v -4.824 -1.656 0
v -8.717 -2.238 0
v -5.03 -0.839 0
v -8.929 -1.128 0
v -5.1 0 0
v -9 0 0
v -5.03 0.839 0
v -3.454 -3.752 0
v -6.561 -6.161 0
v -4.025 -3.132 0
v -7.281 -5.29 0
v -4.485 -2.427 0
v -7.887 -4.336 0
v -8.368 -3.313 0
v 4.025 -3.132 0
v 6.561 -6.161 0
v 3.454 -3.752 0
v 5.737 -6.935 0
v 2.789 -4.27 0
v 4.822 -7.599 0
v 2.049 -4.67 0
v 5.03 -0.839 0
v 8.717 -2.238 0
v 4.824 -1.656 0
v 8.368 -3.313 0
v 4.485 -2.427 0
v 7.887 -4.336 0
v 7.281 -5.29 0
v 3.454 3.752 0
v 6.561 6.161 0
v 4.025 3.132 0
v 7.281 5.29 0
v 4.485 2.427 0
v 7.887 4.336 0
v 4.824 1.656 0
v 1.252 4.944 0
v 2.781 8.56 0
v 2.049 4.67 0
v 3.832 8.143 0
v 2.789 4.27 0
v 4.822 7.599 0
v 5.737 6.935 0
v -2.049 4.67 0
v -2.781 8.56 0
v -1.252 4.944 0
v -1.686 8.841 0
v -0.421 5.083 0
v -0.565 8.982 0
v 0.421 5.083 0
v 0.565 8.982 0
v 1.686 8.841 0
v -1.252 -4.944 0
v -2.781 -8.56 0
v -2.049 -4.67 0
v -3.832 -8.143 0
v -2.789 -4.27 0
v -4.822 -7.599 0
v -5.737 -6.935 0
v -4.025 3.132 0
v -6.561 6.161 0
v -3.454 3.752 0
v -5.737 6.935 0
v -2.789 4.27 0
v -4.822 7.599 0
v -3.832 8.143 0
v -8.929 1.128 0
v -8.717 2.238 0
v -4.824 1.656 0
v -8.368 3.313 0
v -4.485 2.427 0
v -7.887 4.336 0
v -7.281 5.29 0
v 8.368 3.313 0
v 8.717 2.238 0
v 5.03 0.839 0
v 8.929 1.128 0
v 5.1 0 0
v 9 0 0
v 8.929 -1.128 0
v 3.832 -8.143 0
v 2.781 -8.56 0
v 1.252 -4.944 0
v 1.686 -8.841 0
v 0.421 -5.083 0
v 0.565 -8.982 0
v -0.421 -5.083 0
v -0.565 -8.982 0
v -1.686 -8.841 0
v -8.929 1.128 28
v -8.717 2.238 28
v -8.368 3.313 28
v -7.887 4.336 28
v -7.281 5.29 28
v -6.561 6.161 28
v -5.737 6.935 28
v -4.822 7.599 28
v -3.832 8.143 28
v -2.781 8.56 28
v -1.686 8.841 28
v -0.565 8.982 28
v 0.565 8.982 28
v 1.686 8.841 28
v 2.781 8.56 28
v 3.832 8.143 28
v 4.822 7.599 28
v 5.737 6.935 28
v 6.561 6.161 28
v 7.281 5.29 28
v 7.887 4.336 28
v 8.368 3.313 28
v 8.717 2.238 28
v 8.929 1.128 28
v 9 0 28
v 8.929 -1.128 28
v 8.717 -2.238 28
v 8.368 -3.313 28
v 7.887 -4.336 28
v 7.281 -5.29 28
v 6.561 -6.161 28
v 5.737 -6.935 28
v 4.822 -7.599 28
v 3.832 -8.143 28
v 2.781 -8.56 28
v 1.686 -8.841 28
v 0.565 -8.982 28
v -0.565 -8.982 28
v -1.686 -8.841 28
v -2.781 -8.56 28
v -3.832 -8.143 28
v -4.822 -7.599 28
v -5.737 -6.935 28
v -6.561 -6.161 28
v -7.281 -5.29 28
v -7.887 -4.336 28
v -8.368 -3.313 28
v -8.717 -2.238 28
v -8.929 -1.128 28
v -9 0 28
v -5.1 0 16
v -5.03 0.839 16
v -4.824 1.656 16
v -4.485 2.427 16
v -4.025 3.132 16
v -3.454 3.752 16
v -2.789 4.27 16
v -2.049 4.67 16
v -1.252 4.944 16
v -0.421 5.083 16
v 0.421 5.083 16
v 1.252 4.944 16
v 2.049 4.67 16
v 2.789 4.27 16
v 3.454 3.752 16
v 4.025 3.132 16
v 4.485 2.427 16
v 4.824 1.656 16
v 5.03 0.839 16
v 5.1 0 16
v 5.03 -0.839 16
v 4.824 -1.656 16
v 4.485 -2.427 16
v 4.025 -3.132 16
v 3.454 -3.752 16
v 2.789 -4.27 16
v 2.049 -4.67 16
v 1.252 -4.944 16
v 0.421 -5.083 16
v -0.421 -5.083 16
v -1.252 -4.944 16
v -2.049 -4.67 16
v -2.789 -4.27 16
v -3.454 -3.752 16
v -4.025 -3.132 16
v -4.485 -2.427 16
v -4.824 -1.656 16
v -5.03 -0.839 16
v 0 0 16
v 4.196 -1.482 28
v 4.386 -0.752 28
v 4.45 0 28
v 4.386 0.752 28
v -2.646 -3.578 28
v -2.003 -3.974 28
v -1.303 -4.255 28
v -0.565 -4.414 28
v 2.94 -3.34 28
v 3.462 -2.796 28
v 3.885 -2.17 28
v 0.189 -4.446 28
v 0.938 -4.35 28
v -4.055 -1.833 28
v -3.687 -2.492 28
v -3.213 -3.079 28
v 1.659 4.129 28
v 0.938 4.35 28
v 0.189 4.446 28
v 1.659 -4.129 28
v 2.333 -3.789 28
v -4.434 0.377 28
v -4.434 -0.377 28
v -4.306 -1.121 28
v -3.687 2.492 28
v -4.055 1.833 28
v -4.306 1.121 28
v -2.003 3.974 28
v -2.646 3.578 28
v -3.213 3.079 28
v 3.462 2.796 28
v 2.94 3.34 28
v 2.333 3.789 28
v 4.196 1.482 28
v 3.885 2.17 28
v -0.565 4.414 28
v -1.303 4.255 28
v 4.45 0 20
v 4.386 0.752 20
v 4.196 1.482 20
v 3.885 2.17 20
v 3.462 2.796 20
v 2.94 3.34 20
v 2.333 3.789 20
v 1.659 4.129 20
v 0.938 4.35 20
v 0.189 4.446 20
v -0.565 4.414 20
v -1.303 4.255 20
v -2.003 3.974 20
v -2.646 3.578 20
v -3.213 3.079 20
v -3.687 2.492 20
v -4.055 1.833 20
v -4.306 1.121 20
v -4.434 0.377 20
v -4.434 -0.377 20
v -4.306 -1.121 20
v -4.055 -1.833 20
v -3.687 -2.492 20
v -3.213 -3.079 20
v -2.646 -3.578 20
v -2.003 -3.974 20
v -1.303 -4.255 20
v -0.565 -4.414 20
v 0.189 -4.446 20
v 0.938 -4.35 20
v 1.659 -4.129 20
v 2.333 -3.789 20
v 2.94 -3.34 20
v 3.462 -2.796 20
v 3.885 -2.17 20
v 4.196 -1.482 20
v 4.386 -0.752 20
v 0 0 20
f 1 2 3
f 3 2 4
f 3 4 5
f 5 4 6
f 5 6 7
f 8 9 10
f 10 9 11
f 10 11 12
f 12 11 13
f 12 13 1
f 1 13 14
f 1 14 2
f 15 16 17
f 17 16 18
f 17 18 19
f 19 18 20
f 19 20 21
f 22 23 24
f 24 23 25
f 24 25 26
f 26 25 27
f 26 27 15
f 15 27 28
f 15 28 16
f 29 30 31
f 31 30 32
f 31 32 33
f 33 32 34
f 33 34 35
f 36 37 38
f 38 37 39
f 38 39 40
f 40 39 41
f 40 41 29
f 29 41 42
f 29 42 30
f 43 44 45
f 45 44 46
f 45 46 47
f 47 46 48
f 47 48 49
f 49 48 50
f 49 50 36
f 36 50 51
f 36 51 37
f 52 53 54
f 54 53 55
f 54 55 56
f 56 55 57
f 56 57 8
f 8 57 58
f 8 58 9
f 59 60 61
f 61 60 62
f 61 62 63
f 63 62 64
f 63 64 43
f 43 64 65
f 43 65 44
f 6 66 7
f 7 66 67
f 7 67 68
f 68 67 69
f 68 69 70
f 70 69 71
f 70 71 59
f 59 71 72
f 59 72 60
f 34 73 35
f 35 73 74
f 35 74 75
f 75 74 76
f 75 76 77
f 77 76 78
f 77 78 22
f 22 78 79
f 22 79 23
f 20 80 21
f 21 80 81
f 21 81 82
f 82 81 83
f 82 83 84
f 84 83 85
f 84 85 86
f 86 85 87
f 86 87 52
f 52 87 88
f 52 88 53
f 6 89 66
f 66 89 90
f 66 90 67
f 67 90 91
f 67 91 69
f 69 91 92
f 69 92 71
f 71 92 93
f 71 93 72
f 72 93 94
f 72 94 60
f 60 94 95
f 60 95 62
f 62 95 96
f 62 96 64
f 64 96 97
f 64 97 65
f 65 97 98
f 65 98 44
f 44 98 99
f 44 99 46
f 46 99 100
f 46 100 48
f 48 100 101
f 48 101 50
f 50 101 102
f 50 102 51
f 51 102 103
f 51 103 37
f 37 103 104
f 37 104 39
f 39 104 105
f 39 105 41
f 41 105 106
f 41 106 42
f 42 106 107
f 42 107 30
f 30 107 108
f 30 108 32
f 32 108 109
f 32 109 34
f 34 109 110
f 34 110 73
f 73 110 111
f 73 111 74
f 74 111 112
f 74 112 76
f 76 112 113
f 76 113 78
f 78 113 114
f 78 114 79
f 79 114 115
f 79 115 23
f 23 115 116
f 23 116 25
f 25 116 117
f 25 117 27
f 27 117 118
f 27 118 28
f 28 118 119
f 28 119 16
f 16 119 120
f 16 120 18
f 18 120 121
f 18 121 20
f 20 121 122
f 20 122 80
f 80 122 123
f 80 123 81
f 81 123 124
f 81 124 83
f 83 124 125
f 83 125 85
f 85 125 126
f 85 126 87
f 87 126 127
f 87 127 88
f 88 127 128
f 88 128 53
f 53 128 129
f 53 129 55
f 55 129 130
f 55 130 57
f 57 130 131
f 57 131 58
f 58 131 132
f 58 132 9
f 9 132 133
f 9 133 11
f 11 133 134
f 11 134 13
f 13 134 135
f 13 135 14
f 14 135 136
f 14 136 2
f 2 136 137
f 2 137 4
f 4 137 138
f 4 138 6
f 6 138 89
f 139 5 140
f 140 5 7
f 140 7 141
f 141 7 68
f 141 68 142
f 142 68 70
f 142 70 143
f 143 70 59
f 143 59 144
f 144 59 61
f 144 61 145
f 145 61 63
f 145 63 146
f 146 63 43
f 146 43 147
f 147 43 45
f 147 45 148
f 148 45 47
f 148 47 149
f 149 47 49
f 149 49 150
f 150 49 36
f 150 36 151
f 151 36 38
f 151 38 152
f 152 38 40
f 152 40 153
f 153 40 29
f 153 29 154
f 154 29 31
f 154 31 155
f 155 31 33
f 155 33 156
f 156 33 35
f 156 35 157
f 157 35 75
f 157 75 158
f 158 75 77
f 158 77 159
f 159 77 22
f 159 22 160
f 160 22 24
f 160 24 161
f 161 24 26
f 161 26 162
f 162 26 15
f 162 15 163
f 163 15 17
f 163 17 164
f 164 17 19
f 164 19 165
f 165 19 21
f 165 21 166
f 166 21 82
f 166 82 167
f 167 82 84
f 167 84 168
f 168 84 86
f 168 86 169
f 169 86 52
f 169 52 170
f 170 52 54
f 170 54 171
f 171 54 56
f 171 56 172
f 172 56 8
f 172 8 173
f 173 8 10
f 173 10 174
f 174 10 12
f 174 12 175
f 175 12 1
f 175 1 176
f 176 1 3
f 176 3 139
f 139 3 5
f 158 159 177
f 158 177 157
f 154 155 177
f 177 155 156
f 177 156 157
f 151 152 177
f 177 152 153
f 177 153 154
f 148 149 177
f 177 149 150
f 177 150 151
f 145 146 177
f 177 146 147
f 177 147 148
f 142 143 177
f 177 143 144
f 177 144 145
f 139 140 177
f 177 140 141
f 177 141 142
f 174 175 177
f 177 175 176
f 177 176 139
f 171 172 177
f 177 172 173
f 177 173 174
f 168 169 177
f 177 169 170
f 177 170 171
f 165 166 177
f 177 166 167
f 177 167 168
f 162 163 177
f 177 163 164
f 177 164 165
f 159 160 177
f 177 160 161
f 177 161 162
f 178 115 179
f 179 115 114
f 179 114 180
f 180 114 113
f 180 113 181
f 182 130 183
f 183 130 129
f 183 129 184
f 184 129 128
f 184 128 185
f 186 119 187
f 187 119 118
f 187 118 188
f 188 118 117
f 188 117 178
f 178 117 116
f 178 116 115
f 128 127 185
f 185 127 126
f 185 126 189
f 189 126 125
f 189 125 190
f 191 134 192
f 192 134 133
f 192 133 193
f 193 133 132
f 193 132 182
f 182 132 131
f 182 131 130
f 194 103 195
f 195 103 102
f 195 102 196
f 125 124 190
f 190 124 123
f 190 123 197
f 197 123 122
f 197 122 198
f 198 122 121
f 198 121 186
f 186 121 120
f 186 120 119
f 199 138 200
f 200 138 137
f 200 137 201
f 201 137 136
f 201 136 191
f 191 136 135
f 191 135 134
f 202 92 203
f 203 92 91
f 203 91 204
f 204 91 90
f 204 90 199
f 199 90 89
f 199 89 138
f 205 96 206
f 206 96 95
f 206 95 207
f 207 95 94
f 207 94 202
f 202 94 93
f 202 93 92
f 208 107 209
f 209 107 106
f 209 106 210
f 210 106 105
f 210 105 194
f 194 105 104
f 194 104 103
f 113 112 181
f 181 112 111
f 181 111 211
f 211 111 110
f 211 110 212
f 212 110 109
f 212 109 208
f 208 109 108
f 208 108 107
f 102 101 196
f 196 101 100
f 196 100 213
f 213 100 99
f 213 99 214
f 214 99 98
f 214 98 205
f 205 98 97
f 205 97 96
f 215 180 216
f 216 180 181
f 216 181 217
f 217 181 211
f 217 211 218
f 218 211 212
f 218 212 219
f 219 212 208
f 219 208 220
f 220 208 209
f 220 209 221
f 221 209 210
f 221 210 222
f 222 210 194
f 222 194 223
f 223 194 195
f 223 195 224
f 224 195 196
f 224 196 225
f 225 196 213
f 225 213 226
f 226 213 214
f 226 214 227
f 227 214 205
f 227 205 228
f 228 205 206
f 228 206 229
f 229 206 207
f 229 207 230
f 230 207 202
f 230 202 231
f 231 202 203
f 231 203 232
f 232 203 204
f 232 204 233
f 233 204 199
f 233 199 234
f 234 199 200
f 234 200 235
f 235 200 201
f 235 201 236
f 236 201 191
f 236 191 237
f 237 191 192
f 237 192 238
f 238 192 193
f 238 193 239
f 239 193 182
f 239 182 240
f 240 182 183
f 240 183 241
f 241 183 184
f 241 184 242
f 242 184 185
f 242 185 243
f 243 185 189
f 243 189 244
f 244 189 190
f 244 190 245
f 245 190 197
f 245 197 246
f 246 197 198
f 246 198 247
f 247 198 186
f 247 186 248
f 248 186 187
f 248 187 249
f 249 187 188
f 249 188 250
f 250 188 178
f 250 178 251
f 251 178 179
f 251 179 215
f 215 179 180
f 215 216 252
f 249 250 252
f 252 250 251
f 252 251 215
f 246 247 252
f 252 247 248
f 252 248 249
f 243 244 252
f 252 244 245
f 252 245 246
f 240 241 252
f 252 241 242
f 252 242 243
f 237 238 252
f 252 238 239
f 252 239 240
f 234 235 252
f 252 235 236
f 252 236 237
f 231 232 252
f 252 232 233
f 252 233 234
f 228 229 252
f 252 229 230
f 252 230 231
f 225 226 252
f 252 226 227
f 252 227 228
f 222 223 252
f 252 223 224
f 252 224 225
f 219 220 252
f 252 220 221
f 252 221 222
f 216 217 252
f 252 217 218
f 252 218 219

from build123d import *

# Parameters (mm, degrees)
SKETCH1_R           = 9
SKETCH1_R_2         = 5.1
BOSS_EXTRUDE1_DEPTH = 16
SKETCH2_R           = 9
BOSS_EXTRUDE2_DEPTH = 12
SKETCH5_R           = 4.45
CUT_EXTRUDE1_DEPTH  = 8


with BuildPart() as part:
    # Sketch1 → Boss-Extrude1 (new body)
    with BuildSketch(Plane.XY):
        Circle(SKETCH1_R)
        Circle(SKETCH1_R_2, mode=Mode.SUBTRACT)
    extrude(amount=BOSS_EXTRUDE1_DEPTH)

    # Sketch2 → Boss-Extrude2 (add)
    with BuildSketch(Plane.XY.offset(16)):
        Circle(SKETCH2_R)
    extrude(amount=BOSS_EXTRUDE2_DEPTH)

    # Sketch5 → Cut-Extrude1 (cut)
    with BuildSketch(Plane.XY.offset(28)):
        Circle(SKETCH5_R)
    extrude(amount=-CUT_EXTRUDE1_DEPTH, mode=Mode.SUBTRACT)


solid = part.part
